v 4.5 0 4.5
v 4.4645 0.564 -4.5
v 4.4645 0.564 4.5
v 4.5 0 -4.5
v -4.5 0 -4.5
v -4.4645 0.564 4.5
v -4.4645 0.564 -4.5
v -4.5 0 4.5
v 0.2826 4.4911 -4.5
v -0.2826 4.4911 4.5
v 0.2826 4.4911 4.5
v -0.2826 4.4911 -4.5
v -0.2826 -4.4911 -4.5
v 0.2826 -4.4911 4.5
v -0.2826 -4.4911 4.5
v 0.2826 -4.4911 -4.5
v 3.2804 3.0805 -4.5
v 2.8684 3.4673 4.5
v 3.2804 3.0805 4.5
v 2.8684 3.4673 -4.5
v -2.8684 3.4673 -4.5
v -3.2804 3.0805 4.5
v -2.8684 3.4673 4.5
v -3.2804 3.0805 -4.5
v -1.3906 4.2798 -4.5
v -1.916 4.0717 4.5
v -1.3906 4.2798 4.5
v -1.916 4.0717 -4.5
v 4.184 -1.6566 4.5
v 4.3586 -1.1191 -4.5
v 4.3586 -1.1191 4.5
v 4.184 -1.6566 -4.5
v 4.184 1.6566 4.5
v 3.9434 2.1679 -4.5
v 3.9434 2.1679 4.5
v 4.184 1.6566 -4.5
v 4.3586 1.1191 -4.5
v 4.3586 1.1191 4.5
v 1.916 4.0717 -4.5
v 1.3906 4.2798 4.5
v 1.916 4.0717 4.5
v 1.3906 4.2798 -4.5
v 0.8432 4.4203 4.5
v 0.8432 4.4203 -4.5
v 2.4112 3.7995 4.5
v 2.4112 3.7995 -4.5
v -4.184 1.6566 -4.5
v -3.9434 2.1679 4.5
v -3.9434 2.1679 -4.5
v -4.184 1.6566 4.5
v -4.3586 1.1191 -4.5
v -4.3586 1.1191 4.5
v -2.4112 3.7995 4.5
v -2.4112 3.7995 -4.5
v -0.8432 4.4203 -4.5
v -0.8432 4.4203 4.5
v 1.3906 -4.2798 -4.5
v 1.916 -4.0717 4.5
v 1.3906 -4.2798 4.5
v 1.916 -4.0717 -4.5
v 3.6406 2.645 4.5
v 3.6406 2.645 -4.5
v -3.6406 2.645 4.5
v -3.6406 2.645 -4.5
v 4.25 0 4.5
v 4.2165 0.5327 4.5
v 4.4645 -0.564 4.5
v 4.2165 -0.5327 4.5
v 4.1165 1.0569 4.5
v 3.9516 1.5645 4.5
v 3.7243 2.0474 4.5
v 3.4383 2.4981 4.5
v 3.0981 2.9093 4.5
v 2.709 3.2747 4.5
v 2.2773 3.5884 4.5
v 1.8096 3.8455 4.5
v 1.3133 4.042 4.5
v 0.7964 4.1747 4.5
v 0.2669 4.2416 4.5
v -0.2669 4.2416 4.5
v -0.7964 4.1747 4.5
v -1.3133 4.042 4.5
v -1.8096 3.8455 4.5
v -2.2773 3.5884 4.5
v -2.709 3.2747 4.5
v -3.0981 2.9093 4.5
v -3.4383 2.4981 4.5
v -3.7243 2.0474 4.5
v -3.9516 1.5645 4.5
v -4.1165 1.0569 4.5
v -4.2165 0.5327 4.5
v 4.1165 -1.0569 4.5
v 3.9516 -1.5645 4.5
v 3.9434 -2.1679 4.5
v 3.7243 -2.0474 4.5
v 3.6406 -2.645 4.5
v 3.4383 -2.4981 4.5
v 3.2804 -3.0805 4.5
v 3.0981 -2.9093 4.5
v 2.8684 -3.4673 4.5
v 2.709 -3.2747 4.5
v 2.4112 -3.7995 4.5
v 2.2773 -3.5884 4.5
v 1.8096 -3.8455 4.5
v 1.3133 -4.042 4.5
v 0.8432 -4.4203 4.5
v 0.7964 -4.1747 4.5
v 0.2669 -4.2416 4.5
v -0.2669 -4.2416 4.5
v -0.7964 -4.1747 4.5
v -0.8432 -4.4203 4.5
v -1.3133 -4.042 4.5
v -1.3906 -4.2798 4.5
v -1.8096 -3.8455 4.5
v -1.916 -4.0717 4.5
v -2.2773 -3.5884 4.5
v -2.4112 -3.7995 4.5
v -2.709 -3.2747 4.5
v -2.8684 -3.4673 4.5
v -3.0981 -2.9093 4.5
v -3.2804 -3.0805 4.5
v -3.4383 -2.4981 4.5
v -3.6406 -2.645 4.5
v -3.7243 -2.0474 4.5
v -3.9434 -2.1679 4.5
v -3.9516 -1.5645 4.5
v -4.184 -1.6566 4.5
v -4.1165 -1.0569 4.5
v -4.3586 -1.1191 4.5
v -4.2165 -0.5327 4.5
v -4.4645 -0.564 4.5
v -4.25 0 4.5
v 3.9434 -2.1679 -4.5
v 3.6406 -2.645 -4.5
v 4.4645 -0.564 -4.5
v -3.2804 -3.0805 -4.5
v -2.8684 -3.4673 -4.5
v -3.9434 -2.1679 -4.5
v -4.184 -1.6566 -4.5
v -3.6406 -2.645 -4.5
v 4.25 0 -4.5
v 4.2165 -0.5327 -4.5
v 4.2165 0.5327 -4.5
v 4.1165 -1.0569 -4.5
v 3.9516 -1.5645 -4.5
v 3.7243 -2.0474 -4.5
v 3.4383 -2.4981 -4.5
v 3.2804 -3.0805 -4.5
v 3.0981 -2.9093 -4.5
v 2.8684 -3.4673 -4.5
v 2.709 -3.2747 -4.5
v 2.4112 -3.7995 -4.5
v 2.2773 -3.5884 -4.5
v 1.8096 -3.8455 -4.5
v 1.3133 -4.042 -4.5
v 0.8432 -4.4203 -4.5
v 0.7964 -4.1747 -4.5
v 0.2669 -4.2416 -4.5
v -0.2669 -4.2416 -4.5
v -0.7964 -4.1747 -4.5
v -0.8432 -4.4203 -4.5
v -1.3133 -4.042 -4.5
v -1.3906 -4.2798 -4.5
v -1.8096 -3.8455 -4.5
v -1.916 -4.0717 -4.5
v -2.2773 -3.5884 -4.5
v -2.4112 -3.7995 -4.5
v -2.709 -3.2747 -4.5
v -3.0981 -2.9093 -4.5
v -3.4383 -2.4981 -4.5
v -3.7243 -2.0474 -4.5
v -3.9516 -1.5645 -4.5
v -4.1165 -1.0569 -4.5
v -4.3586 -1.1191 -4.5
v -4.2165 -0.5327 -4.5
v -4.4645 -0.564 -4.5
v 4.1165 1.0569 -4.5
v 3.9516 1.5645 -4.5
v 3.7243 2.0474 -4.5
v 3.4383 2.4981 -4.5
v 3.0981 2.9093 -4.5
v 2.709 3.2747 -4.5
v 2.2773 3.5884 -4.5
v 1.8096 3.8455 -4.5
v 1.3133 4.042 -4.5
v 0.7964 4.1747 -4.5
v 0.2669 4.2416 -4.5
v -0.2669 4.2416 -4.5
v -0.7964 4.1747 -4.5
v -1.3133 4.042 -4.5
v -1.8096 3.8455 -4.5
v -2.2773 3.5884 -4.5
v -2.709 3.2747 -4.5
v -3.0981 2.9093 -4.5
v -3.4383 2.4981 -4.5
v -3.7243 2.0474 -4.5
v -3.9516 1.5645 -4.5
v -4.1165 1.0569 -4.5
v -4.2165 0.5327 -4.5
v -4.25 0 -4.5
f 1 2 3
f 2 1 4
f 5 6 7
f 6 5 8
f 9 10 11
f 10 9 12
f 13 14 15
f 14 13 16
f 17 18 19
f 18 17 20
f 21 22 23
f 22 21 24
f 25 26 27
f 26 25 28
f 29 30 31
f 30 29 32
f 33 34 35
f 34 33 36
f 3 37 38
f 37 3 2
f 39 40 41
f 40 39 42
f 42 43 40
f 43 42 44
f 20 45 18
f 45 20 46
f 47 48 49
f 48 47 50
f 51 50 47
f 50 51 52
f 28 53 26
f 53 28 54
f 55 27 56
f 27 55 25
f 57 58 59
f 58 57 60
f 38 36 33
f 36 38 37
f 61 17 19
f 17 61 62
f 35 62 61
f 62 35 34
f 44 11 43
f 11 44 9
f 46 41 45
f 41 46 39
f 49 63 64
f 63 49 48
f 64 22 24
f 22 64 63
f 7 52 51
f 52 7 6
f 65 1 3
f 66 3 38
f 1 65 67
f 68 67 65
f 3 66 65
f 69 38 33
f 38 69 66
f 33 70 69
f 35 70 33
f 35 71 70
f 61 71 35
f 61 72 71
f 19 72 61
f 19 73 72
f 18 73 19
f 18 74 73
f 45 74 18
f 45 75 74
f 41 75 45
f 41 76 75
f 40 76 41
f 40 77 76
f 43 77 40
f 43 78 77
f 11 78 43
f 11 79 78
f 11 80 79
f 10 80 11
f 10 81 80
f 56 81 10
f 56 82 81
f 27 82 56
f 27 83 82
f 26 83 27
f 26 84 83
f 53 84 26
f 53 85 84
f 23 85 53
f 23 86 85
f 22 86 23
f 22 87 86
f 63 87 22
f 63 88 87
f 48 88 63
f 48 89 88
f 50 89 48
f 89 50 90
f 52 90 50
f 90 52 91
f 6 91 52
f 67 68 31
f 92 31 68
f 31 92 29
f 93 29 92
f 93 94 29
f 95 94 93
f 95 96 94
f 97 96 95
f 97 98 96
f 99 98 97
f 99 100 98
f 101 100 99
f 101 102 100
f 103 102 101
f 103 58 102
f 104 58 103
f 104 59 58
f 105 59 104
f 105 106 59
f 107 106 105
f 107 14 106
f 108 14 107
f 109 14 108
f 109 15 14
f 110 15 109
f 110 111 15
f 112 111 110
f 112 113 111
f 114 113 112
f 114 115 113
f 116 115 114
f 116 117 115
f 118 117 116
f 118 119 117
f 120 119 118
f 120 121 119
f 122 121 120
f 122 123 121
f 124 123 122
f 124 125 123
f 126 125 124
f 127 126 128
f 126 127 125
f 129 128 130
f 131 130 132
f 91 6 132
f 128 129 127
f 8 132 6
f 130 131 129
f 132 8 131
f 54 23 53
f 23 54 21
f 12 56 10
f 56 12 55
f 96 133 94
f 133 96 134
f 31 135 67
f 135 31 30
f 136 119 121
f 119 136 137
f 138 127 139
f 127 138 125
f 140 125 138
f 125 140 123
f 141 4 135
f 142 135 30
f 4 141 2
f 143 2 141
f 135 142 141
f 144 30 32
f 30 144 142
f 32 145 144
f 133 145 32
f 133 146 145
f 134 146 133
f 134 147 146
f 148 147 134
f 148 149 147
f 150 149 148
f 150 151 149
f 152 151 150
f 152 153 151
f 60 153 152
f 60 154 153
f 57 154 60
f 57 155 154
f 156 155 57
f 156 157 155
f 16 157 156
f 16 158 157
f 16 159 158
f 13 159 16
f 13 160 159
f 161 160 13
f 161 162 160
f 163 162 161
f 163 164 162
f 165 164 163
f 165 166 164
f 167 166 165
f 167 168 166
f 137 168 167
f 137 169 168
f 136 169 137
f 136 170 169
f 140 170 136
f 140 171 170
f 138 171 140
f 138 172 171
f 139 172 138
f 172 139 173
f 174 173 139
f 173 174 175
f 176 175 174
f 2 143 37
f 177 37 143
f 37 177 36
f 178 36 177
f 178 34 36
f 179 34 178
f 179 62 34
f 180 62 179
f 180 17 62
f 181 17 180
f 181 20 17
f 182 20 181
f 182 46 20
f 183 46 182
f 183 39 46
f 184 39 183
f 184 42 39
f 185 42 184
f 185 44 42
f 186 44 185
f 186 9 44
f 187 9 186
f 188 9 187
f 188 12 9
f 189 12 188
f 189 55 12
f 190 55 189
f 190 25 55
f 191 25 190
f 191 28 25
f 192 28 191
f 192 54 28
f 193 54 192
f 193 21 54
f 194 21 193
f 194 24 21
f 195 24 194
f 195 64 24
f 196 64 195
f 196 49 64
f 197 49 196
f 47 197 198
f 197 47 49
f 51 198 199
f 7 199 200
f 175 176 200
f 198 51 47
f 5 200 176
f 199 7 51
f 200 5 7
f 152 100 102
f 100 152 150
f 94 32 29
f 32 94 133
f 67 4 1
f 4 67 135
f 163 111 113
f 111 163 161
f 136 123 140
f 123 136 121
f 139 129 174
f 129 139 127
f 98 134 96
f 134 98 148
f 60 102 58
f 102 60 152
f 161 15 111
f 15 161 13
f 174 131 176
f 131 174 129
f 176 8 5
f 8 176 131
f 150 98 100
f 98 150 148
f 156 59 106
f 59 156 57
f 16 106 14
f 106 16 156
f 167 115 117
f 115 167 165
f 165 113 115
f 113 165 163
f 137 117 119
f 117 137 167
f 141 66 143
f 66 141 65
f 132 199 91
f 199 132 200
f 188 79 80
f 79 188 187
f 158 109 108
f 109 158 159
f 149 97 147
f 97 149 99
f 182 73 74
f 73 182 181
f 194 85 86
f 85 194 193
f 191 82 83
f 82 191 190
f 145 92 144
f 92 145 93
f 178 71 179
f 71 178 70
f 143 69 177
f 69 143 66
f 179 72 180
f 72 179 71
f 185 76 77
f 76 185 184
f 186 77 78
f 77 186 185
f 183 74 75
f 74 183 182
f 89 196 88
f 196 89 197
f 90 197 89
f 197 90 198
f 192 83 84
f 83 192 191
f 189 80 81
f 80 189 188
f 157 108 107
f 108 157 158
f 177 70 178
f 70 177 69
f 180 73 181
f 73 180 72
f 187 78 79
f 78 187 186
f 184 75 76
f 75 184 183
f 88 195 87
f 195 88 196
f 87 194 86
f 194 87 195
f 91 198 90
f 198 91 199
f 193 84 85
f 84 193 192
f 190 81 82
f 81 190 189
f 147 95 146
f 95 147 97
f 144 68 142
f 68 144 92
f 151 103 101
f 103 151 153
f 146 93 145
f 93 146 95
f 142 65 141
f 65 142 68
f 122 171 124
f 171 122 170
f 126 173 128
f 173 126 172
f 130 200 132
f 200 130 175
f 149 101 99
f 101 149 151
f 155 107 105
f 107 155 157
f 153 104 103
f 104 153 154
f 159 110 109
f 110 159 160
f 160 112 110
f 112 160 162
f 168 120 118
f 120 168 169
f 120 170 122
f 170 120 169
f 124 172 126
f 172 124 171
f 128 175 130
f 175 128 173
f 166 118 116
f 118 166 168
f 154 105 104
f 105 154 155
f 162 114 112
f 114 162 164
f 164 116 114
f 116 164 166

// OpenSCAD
$fn = 50;


difference() {
	union() {
		translate(v = [0, 0, -4.5000000000]) {
			cylinder(h = 9, r = 4.5000000000);
		}
	}
	union() {
		translate(v = [0, 0, -100.0000000000]) {
			cylinder(h = 200, r = 4.2500000000);
		}
	}
}
